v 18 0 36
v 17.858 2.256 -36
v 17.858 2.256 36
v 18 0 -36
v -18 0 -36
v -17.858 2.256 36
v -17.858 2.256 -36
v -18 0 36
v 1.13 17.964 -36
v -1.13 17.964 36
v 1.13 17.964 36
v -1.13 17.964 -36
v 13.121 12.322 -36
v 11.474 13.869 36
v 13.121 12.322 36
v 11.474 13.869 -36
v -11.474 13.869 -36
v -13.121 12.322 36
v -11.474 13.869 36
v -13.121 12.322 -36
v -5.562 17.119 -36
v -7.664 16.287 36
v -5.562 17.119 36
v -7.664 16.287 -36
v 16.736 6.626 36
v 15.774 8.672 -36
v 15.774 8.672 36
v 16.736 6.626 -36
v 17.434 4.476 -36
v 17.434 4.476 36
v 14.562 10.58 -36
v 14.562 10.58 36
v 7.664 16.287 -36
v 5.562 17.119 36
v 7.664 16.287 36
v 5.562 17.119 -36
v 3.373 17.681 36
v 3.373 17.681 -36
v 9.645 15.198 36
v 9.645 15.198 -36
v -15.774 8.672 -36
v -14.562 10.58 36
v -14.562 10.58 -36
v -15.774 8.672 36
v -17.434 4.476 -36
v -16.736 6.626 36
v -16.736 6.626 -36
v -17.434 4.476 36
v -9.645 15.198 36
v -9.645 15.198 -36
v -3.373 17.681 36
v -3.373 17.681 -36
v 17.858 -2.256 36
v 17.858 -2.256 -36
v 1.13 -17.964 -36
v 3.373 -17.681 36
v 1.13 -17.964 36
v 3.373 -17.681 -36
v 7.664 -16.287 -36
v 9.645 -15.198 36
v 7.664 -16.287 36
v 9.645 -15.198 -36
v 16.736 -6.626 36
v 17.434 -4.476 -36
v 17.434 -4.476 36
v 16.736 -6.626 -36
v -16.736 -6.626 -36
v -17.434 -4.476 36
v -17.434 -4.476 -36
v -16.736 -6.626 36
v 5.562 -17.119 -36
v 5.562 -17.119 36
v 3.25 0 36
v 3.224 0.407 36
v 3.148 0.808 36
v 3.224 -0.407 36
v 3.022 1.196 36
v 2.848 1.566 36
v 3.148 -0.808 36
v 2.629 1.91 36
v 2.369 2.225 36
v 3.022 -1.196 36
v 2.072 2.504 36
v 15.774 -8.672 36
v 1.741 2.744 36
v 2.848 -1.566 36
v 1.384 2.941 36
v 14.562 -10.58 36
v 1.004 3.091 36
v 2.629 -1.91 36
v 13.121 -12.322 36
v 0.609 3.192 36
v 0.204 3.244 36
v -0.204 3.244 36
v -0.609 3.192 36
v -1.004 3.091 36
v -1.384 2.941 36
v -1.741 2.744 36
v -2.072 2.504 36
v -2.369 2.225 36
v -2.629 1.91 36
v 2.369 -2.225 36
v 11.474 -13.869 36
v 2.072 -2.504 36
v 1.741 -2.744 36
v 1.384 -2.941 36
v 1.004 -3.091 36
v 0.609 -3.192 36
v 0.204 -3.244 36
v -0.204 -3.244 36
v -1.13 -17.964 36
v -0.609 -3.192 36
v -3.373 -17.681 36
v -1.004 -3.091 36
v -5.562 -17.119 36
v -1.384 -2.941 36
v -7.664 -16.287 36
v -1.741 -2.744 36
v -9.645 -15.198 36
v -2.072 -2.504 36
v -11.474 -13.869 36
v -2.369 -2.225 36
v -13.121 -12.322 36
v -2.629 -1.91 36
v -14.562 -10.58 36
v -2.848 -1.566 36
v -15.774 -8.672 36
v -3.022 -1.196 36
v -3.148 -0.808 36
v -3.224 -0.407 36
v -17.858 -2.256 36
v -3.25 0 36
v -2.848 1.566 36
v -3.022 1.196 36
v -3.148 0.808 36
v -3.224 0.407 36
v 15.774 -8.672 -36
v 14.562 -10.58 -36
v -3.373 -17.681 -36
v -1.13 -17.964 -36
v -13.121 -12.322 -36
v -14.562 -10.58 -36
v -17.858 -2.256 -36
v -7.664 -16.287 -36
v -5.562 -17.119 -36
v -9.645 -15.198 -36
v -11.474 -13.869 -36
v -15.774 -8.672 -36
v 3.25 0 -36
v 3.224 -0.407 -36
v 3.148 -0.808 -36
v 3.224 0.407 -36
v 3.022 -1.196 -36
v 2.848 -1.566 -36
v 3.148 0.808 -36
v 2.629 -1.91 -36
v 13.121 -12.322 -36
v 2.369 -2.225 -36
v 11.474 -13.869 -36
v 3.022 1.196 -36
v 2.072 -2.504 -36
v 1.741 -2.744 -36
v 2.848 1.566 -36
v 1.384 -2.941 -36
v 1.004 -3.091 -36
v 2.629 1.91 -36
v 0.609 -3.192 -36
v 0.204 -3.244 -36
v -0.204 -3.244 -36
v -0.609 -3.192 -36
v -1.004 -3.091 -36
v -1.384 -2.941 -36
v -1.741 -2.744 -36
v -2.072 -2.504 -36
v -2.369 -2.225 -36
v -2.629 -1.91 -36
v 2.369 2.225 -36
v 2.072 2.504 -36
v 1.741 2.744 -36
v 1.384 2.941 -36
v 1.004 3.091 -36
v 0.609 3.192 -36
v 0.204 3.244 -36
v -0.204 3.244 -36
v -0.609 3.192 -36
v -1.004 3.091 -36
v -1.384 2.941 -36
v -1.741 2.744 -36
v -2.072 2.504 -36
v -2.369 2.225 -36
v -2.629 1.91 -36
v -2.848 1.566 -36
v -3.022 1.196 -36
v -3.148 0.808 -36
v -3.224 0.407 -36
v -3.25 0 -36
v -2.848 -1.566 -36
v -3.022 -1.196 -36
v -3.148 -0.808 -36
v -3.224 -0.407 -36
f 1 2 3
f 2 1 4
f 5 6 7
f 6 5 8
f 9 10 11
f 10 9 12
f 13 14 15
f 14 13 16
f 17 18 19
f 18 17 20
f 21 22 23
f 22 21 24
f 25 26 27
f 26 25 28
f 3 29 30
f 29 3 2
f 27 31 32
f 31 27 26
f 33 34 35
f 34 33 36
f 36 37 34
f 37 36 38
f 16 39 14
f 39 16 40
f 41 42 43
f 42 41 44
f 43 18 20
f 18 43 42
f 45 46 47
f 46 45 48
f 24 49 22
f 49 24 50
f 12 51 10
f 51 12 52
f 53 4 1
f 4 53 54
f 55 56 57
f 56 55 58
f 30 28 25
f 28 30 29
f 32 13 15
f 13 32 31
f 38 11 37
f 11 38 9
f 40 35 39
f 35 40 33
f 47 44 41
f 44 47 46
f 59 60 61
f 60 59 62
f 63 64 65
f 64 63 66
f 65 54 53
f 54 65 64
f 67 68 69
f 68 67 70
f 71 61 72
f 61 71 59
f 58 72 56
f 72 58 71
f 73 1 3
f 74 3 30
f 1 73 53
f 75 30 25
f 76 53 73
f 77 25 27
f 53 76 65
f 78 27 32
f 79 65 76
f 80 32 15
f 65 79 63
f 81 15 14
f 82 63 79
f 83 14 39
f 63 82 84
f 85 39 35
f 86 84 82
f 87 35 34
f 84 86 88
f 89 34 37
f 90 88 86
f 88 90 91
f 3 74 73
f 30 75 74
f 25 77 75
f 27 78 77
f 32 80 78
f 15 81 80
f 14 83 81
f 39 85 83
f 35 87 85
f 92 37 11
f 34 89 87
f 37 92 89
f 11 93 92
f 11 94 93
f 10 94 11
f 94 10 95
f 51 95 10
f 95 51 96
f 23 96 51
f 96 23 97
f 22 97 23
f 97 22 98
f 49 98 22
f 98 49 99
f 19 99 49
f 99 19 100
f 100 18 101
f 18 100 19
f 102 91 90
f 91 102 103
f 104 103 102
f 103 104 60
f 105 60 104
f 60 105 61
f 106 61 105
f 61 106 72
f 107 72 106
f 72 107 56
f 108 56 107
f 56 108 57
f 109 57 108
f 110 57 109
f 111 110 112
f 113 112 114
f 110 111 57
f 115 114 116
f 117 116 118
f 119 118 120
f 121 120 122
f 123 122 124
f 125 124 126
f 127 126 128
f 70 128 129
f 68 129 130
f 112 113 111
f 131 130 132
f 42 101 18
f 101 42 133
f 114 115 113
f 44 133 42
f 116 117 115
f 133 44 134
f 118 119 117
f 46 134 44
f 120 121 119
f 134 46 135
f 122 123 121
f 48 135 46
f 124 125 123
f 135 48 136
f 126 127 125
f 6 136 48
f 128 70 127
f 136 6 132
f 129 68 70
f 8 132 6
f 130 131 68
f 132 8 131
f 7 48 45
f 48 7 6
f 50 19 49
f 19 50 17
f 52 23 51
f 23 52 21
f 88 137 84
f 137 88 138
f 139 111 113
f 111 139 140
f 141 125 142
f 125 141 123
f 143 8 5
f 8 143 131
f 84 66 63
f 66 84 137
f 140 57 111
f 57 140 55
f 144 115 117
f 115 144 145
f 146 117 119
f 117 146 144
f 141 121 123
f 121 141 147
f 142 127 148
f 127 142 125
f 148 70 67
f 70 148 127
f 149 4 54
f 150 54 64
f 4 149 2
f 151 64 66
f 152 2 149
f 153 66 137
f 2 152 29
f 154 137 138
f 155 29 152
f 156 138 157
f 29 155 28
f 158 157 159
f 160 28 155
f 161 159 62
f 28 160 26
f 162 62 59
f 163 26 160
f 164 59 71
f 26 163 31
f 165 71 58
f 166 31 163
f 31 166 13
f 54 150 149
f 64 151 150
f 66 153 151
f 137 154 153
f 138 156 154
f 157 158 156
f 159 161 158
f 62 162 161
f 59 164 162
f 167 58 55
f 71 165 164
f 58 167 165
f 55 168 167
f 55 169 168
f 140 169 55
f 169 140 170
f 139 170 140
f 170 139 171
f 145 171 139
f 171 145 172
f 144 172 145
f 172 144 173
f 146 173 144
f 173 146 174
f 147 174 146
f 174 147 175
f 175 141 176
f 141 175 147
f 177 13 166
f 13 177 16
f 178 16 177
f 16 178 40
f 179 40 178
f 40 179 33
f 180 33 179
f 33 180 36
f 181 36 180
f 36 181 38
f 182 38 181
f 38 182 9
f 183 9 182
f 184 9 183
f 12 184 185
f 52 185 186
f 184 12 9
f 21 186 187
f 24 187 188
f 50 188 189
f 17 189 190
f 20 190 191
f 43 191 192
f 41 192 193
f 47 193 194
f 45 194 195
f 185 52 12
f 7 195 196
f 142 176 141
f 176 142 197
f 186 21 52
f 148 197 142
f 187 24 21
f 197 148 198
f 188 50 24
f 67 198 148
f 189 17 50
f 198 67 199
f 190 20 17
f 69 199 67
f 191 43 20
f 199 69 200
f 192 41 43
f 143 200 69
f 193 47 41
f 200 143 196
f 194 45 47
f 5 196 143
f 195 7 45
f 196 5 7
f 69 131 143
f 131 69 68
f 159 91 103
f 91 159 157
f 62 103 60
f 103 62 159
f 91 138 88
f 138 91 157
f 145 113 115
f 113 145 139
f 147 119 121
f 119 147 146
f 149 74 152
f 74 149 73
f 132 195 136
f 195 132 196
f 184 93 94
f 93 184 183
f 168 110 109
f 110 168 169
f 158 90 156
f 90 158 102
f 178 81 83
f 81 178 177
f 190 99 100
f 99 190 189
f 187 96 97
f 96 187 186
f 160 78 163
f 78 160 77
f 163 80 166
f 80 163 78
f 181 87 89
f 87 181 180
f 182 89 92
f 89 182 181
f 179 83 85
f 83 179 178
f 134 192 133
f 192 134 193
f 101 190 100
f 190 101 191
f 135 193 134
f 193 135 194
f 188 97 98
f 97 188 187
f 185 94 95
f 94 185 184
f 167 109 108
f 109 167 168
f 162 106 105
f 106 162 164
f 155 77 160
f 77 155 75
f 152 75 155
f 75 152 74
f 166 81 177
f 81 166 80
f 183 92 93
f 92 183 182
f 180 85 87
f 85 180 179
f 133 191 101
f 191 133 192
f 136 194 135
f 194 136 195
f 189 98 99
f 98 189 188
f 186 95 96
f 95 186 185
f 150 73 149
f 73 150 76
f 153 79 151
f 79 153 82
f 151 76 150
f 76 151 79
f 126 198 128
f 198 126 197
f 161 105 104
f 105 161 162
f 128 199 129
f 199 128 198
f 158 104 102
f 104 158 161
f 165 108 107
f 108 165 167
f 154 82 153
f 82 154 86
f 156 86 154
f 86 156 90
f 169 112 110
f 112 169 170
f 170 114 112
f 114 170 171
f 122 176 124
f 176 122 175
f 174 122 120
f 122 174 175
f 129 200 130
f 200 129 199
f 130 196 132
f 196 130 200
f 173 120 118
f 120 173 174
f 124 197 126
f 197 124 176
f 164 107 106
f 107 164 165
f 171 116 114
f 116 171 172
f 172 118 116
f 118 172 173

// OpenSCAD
$fn = 50;


difference() {
	union() {
		translate(v = [0, 0, -36.0000000000]) {
			cylinder(h = 72, r = 18.0000000000);
		}
	}
	union() {
		translate(v = [0, 0, -100.0000000000]) {
			cylinder(h = 200, r = 3.2500000000);
		}
	}
}
